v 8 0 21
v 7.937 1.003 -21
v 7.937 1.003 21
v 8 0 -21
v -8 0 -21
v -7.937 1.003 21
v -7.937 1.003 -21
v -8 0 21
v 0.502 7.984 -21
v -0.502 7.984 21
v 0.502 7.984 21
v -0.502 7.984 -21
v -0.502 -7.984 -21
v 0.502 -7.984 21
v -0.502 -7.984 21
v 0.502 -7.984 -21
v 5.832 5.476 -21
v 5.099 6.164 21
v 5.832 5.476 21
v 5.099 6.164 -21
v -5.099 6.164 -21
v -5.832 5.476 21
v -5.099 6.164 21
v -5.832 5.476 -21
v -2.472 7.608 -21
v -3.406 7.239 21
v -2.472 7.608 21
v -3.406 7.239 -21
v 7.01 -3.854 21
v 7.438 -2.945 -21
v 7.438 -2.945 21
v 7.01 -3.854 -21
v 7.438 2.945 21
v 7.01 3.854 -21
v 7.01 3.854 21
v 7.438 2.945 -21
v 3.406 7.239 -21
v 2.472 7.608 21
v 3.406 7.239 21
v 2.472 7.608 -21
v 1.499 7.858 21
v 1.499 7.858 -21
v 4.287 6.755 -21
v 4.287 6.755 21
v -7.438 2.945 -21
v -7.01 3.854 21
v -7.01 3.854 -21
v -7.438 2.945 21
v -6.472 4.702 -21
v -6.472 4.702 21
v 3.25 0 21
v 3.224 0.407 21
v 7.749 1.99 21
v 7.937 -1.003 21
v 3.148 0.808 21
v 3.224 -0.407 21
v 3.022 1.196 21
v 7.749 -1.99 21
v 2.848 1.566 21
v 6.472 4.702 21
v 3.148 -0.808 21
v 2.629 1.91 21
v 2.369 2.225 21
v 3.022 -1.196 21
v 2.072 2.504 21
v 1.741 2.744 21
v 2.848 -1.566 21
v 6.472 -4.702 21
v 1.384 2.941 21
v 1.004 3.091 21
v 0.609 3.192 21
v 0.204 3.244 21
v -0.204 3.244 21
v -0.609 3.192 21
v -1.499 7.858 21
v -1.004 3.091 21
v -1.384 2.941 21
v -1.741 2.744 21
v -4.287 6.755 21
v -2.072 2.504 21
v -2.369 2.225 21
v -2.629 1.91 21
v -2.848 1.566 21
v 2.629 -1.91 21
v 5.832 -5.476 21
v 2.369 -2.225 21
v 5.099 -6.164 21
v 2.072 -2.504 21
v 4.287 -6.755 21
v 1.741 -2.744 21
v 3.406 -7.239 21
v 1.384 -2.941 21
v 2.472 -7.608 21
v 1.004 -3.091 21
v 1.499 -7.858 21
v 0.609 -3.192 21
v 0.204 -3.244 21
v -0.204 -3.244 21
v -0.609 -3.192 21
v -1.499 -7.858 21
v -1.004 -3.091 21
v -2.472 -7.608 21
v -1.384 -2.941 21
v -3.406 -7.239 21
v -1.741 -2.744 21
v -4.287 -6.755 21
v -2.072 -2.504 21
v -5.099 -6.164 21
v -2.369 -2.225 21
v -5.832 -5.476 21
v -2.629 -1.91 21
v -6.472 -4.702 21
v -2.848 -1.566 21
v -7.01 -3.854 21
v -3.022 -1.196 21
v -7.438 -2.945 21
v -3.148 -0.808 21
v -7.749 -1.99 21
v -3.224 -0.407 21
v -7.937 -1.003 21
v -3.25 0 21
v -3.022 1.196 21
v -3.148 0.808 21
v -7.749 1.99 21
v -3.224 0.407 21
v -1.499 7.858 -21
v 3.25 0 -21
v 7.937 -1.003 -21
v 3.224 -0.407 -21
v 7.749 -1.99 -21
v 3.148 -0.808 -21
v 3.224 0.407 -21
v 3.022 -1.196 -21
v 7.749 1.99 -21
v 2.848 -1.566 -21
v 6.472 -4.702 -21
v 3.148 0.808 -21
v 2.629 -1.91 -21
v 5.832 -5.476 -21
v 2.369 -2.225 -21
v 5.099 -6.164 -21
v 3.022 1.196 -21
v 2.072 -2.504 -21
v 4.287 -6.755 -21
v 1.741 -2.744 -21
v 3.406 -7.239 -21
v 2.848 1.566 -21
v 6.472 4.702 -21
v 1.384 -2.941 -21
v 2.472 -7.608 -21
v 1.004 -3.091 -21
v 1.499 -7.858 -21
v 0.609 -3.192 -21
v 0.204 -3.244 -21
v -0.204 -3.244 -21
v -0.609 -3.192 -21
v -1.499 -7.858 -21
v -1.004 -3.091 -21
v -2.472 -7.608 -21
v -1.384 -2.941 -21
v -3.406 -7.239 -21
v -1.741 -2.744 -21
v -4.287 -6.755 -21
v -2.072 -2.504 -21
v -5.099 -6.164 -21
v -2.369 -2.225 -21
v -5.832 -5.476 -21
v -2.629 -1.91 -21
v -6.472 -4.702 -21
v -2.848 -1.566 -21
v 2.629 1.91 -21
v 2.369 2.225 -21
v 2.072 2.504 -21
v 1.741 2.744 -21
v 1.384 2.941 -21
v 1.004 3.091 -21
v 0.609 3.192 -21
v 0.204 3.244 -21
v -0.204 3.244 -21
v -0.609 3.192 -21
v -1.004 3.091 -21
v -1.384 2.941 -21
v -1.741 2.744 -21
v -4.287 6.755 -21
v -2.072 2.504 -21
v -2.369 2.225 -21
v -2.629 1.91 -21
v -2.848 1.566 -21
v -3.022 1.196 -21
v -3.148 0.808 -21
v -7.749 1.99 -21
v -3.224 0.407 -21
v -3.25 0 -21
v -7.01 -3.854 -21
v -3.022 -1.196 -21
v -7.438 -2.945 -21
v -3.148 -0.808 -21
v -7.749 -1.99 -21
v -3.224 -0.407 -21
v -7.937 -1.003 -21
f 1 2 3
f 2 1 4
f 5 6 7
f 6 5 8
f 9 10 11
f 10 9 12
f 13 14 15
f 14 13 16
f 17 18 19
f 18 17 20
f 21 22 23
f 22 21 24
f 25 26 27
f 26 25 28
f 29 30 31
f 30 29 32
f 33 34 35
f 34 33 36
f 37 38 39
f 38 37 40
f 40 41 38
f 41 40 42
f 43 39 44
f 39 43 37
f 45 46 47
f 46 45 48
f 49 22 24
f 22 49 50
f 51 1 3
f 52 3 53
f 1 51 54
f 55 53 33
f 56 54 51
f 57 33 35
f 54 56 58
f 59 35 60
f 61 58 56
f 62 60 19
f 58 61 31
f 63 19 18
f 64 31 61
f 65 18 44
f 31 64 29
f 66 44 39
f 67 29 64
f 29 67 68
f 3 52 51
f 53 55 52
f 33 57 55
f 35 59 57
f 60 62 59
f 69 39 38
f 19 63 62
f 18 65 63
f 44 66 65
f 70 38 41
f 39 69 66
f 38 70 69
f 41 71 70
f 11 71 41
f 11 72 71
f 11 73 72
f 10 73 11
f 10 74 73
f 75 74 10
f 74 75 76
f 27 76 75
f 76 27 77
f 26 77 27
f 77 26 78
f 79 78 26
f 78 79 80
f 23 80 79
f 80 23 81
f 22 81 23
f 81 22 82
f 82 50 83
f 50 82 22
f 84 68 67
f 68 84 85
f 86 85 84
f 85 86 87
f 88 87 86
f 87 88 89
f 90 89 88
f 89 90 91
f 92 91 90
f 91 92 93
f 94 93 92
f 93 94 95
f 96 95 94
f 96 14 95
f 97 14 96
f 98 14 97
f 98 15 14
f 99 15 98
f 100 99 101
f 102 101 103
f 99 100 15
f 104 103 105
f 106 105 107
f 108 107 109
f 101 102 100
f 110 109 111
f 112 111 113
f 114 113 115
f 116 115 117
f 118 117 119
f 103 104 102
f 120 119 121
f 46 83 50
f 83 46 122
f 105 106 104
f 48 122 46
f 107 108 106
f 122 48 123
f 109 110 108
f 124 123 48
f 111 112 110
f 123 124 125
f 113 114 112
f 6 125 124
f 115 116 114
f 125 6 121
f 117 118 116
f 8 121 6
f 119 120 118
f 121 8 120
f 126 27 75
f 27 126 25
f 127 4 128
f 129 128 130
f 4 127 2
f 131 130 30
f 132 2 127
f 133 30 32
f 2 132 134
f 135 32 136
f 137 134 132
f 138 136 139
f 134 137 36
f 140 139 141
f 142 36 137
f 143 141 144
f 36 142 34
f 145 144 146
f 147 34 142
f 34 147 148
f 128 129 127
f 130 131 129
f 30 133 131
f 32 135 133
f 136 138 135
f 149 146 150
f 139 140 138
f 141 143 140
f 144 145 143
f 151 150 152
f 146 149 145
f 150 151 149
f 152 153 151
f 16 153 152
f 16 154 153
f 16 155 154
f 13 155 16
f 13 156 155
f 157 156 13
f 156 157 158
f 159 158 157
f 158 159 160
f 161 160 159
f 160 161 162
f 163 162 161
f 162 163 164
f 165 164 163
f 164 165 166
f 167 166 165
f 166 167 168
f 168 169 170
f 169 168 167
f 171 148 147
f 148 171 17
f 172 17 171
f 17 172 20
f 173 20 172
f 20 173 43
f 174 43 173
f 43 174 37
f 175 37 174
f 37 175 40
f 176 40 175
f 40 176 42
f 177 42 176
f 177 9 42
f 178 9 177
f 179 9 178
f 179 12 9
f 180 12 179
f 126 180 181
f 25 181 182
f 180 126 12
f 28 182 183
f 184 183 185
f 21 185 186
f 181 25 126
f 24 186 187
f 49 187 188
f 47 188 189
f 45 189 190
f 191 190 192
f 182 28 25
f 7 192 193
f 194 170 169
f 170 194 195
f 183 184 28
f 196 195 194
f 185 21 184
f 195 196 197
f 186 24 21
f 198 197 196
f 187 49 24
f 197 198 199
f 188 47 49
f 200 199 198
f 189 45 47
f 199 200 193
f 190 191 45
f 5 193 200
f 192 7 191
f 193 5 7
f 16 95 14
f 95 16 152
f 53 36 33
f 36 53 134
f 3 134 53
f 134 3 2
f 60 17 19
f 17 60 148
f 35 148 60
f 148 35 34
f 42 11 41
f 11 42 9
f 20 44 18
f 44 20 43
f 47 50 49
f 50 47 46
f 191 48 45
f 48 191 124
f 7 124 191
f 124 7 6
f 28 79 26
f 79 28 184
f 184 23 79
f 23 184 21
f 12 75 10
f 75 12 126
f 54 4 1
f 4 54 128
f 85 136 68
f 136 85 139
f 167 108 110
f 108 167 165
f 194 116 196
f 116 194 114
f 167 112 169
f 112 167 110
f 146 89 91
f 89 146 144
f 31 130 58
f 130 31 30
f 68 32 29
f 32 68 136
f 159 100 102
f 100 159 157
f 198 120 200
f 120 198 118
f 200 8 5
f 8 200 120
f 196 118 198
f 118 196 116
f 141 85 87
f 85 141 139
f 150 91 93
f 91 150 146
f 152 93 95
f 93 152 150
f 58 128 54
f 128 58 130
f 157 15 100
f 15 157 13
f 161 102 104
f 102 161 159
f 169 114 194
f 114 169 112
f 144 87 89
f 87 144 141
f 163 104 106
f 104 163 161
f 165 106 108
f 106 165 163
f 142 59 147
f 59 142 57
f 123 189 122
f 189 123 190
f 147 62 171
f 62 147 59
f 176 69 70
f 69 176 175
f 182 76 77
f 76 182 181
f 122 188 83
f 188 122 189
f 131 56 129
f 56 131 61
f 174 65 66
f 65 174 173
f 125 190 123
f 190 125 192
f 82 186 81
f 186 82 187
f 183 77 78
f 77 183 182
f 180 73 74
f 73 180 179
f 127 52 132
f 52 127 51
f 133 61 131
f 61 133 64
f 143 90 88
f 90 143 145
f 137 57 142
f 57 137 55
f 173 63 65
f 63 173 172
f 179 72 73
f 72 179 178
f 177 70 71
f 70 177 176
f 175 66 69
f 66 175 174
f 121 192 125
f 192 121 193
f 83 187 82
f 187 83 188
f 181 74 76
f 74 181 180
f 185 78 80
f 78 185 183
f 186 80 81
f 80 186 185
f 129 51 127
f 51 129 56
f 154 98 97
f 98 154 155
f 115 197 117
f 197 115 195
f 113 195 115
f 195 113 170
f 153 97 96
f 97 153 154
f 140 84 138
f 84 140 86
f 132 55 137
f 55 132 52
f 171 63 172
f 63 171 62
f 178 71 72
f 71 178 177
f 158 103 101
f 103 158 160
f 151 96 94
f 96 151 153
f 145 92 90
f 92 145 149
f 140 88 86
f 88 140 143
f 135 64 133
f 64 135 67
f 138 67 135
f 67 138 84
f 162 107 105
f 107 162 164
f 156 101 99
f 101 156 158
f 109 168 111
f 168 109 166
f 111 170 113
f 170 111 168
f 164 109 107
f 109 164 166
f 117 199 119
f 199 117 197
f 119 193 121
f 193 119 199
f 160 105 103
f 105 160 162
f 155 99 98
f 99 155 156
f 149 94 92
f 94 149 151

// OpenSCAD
$fn = 50;


difference() {
	union() {
		translate(v = [0, 0, -21.0000000000]) {
			cylinder(h = 42, r = 8.0000000000);
		}
	}
	union() {
		translate(v = [0, 0, -100.0000000000]) {
			cylinder(h = 200, r = 3.2500000000);
		}
	}
}
